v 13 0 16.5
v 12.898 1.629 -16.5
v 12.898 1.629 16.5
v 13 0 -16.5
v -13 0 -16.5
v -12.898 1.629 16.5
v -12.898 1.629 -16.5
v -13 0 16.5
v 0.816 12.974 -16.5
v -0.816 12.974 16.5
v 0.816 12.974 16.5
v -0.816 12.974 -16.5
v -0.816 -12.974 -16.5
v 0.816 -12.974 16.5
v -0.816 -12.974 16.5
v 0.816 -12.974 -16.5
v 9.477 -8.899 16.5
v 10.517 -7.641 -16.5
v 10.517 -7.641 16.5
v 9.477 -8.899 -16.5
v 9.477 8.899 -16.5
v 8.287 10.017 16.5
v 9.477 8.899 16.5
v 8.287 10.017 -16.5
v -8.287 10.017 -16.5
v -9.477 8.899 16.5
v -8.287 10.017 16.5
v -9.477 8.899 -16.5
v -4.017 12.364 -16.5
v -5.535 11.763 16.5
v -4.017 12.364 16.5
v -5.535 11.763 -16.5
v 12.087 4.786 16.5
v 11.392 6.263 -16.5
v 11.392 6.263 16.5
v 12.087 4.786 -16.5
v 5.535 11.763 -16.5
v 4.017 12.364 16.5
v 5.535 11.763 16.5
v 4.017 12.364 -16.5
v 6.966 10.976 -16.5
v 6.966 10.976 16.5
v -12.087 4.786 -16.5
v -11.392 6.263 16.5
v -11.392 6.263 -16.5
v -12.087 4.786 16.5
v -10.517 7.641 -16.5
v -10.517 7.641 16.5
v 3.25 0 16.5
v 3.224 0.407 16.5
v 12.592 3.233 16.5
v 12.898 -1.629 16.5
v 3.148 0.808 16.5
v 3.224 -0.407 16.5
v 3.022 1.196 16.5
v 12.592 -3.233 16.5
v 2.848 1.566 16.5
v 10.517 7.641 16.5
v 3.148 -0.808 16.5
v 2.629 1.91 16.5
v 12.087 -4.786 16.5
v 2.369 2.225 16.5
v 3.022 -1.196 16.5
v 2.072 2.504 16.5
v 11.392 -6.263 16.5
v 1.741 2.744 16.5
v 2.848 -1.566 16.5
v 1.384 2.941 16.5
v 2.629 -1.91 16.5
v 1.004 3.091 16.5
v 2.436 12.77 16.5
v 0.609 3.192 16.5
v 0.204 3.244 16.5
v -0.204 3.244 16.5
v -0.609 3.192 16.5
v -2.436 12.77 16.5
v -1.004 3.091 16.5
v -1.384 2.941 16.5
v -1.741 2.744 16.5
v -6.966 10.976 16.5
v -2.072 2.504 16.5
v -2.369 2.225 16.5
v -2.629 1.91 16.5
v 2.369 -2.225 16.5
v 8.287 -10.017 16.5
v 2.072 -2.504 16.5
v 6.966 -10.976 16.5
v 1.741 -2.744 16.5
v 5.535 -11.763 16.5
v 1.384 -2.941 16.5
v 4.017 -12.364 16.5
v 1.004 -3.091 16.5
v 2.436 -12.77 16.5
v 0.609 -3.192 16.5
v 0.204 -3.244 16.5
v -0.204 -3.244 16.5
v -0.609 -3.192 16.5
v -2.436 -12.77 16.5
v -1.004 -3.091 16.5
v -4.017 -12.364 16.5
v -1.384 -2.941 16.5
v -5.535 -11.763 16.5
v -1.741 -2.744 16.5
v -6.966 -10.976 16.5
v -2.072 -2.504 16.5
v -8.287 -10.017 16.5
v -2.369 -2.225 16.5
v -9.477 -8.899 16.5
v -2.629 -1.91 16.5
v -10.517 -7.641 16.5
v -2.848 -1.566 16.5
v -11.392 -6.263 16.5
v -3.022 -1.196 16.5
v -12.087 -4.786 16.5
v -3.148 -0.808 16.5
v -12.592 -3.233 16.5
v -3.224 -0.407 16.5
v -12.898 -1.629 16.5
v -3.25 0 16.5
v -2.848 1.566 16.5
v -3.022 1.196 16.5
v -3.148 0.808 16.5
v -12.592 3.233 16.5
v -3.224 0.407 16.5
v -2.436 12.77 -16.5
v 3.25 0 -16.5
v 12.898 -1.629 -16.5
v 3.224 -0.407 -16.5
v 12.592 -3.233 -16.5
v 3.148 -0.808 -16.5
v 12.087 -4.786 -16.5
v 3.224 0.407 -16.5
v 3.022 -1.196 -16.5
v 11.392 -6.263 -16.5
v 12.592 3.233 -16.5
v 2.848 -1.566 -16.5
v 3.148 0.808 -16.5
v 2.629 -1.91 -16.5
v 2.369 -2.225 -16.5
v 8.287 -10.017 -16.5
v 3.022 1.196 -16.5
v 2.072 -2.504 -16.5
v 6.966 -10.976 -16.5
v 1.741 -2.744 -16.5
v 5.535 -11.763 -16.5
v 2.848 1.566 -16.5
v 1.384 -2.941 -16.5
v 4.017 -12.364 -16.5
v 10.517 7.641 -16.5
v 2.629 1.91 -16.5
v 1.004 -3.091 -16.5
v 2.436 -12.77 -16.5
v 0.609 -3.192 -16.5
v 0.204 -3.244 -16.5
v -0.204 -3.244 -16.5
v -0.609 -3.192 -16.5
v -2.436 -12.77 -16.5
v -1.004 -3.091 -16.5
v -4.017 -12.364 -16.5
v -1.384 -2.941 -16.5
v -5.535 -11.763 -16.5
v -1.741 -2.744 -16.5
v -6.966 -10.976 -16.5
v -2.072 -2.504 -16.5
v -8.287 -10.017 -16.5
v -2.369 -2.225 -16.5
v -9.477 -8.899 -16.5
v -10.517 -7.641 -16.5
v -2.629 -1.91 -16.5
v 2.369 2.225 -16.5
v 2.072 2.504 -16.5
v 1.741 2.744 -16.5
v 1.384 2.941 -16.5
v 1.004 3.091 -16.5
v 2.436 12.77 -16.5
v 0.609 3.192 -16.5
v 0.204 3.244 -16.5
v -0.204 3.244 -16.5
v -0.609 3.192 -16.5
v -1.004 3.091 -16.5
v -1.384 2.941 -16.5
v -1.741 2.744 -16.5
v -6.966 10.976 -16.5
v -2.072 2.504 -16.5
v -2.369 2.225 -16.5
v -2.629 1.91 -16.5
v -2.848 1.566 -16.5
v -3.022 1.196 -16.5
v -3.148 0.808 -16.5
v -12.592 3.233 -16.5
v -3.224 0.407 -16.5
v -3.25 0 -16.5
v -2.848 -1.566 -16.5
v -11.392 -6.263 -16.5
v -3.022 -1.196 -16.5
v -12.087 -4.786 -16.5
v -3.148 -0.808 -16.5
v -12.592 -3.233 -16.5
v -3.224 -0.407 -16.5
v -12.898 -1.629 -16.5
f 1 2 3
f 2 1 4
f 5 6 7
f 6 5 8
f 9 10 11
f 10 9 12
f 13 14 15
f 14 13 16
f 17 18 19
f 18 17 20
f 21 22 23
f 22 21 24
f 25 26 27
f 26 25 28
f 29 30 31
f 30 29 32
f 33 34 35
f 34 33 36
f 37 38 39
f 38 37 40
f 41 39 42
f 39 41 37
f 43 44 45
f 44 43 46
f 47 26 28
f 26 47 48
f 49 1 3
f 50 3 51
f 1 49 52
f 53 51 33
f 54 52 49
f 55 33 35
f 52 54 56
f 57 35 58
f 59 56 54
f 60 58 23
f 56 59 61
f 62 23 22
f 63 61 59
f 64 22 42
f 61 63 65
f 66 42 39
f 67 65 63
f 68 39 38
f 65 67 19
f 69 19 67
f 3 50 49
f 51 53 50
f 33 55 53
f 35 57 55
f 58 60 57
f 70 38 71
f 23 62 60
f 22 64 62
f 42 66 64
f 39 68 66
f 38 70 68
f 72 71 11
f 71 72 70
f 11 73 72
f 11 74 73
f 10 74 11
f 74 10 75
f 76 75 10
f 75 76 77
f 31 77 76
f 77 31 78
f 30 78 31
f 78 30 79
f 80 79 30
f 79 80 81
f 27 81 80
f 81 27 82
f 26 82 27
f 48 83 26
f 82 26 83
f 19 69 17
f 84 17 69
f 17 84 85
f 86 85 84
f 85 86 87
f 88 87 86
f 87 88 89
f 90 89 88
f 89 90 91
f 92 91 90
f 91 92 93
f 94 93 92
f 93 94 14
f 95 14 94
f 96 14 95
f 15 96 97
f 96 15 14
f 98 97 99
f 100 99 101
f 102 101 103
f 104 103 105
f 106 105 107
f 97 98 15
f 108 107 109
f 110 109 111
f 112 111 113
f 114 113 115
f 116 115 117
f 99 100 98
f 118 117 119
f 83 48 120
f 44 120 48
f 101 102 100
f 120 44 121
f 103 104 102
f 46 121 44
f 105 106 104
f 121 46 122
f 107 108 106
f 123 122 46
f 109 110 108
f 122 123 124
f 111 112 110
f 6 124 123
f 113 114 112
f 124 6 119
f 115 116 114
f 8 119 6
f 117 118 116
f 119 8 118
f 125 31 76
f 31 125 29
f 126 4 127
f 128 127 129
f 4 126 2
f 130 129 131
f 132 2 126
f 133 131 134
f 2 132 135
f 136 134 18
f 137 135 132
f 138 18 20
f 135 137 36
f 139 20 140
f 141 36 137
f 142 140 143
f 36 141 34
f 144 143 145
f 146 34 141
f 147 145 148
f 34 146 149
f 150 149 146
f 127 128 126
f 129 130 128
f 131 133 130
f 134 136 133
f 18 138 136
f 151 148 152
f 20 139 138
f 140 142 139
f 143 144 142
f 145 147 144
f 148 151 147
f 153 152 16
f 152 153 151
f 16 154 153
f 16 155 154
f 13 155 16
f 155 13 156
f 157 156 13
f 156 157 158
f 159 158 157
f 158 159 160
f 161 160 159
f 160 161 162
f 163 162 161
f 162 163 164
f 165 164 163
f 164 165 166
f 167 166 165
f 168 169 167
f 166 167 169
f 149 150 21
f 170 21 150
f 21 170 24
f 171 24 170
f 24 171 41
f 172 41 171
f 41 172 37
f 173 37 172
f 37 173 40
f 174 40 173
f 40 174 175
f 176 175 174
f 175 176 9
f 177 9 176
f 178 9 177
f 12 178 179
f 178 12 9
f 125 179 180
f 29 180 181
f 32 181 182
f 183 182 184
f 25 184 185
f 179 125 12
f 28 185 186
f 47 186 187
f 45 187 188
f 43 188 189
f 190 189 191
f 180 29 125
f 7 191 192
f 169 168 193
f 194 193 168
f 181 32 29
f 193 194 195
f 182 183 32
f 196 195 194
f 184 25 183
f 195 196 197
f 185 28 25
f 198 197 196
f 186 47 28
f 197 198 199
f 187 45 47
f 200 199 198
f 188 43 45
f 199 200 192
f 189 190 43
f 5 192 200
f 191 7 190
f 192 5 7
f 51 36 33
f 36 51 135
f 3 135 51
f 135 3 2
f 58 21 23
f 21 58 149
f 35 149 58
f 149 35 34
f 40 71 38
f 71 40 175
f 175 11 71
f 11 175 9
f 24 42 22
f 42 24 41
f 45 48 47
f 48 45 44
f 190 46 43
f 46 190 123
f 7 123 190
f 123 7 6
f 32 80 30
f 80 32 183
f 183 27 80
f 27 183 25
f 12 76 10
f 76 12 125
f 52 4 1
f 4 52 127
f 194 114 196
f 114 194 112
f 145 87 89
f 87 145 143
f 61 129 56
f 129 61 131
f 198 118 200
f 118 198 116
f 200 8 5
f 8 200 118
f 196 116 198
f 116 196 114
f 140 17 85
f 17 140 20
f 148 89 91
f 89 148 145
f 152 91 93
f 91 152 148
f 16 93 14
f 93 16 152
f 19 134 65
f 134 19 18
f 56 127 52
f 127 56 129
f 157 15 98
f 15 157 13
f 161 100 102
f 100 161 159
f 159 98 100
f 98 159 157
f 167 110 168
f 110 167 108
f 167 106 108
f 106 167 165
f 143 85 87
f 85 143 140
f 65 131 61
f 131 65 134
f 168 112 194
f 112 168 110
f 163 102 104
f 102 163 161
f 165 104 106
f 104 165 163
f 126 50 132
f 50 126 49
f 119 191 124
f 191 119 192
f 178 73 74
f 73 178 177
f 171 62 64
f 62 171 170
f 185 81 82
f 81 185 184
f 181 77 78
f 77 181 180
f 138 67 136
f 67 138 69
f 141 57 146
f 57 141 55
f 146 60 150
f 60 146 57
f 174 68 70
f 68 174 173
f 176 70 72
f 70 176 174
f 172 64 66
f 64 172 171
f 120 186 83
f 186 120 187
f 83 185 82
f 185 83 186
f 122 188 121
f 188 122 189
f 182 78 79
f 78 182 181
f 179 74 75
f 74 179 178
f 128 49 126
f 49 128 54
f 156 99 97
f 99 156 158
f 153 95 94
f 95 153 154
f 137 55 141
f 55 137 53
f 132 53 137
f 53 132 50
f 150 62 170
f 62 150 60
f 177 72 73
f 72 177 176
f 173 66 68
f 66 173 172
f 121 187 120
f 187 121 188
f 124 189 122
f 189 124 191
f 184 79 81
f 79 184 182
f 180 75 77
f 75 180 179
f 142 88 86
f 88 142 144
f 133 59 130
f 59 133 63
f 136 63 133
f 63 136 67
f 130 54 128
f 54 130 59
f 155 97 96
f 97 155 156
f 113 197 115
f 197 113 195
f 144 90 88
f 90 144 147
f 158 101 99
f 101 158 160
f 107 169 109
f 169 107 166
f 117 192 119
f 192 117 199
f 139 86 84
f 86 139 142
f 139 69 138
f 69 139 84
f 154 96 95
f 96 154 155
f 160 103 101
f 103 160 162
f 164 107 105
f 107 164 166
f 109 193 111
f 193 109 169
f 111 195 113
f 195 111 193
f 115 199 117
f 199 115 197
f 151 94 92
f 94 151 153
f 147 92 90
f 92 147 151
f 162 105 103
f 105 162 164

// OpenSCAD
$fn = 50;


difference() {
	union() {
		translate(v = [0, 0, -16.5000000000]) {
			cylinder(h = 33, r = 13.0000000000);
		}
	}
	union() {
		translate(v = [0, 0, -100.0000000000]) {
			cylinder(h = 200, r = 3.2500000000);
		}
	}
}
